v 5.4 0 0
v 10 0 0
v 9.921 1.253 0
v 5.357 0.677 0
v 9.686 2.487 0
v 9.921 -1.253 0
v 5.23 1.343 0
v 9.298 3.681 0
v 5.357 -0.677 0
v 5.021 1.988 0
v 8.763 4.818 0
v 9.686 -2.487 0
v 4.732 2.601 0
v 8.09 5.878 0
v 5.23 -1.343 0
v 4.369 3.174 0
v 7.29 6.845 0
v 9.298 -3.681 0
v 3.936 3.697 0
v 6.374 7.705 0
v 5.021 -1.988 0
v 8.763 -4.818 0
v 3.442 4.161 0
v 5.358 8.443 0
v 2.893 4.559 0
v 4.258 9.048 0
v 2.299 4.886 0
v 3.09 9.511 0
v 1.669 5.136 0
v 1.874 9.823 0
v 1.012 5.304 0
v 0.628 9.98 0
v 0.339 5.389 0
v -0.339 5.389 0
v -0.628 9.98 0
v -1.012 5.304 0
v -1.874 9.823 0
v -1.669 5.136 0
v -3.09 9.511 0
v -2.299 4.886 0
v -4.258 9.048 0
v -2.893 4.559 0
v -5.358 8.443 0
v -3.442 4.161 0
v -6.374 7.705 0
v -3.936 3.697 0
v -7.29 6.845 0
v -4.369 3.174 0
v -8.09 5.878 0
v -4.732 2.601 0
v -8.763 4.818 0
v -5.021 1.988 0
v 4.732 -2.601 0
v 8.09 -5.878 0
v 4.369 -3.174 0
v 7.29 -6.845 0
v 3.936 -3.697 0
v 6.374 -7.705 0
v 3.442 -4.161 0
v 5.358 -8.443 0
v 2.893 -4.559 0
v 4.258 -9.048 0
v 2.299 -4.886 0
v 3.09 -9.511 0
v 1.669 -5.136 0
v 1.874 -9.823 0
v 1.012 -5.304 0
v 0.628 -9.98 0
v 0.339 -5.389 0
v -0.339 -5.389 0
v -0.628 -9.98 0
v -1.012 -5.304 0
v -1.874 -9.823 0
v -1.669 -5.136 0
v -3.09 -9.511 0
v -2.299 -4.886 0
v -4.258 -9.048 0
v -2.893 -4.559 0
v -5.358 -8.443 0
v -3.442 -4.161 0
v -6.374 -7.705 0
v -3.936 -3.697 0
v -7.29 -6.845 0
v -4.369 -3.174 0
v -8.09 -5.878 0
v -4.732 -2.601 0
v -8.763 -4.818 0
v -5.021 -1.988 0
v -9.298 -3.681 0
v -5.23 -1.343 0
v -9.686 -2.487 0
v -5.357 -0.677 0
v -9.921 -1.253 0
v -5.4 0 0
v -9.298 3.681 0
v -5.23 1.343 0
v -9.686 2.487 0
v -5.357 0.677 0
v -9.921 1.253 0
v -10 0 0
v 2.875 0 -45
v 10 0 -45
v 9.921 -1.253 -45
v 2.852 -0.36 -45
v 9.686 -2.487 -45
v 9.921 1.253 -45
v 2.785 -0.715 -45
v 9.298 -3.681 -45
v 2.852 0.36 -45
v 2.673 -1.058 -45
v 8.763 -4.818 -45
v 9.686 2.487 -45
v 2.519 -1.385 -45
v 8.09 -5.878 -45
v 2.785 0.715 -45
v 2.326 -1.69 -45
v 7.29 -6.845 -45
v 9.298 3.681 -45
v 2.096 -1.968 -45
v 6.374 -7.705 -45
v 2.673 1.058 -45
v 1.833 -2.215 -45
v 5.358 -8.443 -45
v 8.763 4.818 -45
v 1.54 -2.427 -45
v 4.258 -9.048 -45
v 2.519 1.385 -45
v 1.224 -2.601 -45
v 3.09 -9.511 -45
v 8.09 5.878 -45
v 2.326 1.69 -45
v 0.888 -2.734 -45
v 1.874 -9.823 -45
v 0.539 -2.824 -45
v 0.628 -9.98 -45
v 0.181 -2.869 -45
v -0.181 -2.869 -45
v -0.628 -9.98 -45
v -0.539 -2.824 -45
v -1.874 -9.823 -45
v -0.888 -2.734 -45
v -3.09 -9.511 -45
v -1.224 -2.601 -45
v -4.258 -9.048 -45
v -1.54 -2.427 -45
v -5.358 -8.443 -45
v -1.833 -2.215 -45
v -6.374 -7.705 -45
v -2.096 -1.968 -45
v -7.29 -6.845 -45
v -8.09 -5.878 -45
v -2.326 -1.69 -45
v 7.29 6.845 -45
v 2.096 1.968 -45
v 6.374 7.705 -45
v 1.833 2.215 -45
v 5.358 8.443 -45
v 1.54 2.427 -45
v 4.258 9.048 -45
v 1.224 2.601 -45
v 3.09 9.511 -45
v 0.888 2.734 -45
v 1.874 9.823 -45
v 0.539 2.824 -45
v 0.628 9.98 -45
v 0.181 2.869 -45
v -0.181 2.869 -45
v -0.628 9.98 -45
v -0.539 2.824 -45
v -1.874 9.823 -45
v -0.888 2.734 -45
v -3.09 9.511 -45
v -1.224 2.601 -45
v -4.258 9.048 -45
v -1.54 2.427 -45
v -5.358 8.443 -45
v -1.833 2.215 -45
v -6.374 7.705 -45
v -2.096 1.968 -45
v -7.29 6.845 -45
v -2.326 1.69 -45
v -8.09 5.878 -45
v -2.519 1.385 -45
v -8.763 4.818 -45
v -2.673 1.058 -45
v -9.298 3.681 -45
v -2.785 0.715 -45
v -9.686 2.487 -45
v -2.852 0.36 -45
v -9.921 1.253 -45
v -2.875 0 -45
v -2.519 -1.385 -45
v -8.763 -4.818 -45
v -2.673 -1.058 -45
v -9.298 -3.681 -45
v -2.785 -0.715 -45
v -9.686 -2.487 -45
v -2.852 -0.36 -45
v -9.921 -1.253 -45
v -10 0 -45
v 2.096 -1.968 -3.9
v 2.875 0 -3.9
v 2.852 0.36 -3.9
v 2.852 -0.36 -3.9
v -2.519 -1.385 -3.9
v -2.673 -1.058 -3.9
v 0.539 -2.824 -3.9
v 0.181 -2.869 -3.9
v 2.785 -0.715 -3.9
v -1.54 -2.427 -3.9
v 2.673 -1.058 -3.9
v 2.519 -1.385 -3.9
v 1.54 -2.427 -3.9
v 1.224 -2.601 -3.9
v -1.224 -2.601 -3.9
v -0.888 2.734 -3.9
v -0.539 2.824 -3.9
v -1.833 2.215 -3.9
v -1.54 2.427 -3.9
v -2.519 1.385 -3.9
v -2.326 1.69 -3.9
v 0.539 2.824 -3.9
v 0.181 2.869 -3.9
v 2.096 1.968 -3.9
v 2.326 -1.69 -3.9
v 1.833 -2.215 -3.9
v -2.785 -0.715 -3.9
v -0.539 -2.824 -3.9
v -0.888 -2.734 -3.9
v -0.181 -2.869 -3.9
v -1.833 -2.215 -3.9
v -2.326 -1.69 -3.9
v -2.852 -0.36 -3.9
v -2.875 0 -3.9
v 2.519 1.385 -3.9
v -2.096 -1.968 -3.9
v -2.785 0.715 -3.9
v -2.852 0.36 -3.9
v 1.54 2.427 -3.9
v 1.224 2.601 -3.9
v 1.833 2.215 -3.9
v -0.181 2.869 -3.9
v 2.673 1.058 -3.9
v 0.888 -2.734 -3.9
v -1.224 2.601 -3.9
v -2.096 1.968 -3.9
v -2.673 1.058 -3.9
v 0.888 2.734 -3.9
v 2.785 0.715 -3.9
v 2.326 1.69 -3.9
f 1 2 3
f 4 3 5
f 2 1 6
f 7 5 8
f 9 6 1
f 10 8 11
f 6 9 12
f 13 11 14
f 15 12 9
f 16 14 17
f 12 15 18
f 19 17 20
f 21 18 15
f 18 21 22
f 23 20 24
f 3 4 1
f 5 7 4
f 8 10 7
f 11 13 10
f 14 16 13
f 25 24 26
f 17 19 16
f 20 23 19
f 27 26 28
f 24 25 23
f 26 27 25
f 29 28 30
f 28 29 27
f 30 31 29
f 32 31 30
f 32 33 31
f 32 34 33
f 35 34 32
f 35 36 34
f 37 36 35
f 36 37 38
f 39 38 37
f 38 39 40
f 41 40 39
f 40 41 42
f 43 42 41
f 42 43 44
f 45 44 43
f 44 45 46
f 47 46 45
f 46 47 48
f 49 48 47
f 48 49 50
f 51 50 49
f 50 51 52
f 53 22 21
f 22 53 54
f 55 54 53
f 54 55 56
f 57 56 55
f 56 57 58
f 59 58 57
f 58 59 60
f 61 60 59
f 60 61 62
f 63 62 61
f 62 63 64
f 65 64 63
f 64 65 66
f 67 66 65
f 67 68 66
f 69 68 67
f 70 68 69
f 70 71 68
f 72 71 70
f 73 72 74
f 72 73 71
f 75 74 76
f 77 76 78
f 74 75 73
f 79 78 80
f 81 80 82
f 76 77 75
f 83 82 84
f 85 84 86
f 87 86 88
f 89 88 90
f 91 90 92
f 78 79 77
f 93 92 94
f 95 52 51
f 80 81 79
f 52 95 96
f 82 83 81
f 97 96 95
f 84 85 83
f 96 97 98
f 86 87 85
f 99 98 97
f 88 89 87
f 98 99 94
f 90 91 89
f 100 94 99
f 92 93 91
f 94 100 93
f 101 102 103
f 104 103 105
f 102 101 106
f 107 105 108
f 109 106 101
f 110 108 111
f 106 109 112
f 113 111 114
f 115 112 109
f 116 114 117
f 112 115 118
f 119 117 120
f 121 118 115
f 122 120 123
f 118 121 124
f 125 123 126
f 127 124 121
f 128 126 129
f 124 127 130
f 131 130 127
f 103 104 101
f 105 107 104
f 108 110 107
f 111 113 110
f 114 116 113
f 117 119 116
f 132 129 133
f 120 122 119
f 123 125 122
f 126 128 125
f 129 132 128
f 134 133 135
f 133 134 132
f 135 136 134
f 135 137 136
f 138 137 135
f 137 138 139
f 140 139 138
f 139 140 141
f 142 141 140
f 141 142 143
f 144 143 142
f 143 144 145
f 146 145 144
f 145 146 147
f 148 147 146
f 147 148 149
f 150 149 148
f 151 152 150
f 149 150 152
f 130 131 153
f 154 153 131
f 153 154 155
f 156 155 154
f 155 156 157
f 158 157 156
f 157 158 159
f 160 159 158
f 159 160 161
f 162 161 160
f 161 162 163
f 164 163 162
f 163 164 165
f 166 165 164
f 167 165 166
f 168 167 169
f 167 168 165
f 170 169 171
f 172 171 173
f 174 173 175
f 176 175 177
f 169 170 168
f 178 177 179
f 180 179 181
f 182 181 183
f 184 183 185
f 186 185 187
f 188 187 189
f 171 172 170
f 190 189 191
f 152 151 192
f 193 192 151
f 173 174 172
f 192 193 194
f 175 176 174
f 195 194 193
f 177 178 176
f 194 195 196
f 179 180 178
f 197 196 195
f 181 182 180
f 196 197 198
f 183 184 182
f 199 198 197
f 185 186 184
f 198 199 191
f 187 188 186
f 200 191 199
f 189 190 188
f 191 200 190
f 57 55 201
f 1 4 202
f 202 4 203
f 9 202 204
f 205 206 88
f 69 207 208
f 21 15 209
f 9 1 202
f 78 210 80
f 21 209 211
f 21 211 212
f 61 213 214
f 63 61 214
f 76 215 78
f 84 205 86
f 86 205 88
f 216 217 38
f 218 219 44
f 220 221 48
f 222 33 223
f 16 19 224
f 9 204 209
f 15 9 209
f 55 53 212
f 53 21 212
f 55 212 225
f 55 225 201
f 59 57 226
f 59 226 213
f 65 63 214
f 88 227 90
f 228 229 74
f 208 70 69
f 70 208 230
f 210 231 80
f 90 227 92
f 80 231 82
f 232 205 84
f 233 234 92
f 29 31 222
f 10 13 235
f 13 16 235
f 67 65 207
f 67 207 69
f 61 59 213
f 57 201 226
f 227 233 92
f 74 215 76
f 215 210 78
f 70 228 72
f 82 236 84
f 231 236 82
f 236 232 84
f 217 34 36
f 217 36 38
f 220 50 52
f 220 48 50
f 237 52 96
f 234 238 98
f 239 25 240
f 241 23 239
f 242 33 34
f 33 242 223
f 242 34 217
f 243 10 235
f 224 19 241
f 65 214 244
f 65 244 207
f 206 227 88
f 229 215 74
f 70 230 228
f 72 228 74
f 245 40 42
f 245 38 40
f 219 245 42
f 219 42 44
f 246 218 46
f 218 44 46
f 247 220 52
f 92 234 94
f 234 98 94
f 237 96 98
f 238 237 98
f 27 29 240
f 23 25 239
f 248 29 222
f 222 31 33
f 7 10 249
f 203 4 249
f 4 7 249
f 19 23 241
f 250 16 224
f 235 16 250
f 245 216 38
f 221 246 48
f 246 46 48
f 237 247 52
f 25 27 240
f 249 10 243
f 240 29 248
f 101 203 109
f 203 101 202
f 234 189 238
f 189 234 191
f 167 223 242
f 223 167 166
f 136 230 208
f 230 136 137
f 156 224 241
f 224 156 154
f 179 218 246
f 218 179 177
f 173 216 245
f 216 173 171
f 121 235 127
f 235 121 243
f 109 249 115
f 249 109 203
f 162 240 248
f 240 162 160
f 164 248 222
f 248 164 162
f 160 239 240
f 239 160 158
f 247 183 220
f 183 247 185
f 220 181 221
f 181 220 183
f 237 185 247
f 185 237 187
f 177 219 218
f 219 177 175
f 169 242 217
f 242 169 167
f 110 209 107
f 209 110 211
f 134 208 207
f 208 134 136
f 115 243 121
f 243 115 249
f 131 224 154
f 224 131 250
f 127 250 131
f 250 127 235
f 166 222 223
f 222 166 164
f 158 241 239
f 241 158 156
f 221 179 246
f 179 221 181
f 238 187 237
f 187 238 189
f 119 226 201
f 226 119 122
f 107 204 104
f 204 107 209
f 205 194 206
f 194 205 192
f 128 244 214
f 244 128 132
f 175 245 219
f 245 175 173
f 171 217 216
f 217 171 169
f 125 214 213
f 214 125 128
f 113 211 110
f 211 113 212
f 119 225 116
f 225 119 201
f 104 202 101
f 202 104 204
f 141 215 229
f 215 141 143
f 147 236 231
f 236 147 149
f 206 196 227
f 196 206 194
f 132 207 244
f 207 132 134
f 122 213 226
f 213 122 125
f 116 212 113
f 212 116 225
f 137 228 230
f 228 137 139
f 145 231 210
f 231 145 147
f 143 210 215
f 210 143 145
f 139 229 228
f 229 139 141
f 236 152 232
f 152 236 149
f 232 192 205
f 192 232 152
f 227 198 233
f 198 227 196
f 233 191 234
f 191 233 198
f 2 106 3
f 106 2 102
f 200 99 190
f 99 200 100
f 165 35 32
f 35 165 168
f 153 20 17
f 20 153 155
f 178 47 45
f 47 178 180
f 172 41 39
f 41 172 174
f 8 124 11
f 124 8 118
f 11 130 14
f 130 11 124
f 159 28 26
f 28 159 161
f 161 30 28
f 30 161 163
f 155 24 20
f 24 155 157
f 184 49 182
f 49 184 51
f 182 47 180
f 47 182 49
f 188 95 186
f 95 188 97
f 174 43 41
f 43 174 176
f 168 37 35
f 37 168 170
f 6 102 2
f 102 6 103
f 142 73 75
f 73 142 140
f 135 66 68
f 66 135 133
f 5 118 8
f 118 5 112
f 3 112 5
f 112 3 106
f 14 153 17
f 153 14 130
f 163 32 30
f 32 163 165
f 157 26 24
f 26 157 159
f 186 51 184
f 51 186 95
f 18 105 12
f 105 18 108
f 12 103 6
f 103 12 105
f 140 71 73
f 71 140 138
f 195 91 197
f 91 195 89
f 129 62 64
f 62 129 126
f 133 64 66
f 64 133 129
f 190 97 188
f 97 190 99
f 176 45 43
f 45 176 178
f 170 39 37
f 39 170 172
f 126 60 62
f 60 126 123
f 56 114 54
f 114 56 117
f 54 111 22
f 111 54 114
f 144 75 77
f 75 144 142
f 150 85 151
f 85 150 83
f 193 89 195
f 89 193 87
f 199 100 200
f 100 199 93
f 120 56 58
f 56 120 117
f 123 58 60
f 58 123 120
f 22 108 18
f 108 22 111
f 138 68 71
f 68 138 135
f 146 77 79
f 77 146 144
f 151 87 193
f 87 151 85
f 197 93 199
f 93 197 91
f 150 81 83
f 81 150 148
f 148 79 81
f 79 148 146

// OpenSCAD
$fn = 50;


difference() {
	union() {
		translate(v = [0, 0, -45.0000000000]) {
			cylinder(h = 45, r = 10.0000000000);
		}
		cylinder(h = 0, r = 20.0000000000);
	}
	union() {
		translate(v = [0, 0, 0]) {
			rotate(a = [0, 0, 0]) {
				difference() {
					union() {
						#translate(v = [0, 0, -45.0000000000]) {
							cylinder(h = 45, r = 2.6000000000);
						}
						#translate(v = [0, 0, -3.9000000000]) {
							cylinder(h = 3.9000000000, r1 = 2.8750000000, r2 = 5.4000000000);
						}
						#translate(v = [0, 0, -45.0000000000]) {
							cylinder(h = 45, r = 2.8750000000);
						}
						#translate(v = [0, 0, -45.0000000000]) {
							cylinder(h = 45, r = 2.6000000000);
						}
					}
					union();
				}
			}
		}
	}
}
